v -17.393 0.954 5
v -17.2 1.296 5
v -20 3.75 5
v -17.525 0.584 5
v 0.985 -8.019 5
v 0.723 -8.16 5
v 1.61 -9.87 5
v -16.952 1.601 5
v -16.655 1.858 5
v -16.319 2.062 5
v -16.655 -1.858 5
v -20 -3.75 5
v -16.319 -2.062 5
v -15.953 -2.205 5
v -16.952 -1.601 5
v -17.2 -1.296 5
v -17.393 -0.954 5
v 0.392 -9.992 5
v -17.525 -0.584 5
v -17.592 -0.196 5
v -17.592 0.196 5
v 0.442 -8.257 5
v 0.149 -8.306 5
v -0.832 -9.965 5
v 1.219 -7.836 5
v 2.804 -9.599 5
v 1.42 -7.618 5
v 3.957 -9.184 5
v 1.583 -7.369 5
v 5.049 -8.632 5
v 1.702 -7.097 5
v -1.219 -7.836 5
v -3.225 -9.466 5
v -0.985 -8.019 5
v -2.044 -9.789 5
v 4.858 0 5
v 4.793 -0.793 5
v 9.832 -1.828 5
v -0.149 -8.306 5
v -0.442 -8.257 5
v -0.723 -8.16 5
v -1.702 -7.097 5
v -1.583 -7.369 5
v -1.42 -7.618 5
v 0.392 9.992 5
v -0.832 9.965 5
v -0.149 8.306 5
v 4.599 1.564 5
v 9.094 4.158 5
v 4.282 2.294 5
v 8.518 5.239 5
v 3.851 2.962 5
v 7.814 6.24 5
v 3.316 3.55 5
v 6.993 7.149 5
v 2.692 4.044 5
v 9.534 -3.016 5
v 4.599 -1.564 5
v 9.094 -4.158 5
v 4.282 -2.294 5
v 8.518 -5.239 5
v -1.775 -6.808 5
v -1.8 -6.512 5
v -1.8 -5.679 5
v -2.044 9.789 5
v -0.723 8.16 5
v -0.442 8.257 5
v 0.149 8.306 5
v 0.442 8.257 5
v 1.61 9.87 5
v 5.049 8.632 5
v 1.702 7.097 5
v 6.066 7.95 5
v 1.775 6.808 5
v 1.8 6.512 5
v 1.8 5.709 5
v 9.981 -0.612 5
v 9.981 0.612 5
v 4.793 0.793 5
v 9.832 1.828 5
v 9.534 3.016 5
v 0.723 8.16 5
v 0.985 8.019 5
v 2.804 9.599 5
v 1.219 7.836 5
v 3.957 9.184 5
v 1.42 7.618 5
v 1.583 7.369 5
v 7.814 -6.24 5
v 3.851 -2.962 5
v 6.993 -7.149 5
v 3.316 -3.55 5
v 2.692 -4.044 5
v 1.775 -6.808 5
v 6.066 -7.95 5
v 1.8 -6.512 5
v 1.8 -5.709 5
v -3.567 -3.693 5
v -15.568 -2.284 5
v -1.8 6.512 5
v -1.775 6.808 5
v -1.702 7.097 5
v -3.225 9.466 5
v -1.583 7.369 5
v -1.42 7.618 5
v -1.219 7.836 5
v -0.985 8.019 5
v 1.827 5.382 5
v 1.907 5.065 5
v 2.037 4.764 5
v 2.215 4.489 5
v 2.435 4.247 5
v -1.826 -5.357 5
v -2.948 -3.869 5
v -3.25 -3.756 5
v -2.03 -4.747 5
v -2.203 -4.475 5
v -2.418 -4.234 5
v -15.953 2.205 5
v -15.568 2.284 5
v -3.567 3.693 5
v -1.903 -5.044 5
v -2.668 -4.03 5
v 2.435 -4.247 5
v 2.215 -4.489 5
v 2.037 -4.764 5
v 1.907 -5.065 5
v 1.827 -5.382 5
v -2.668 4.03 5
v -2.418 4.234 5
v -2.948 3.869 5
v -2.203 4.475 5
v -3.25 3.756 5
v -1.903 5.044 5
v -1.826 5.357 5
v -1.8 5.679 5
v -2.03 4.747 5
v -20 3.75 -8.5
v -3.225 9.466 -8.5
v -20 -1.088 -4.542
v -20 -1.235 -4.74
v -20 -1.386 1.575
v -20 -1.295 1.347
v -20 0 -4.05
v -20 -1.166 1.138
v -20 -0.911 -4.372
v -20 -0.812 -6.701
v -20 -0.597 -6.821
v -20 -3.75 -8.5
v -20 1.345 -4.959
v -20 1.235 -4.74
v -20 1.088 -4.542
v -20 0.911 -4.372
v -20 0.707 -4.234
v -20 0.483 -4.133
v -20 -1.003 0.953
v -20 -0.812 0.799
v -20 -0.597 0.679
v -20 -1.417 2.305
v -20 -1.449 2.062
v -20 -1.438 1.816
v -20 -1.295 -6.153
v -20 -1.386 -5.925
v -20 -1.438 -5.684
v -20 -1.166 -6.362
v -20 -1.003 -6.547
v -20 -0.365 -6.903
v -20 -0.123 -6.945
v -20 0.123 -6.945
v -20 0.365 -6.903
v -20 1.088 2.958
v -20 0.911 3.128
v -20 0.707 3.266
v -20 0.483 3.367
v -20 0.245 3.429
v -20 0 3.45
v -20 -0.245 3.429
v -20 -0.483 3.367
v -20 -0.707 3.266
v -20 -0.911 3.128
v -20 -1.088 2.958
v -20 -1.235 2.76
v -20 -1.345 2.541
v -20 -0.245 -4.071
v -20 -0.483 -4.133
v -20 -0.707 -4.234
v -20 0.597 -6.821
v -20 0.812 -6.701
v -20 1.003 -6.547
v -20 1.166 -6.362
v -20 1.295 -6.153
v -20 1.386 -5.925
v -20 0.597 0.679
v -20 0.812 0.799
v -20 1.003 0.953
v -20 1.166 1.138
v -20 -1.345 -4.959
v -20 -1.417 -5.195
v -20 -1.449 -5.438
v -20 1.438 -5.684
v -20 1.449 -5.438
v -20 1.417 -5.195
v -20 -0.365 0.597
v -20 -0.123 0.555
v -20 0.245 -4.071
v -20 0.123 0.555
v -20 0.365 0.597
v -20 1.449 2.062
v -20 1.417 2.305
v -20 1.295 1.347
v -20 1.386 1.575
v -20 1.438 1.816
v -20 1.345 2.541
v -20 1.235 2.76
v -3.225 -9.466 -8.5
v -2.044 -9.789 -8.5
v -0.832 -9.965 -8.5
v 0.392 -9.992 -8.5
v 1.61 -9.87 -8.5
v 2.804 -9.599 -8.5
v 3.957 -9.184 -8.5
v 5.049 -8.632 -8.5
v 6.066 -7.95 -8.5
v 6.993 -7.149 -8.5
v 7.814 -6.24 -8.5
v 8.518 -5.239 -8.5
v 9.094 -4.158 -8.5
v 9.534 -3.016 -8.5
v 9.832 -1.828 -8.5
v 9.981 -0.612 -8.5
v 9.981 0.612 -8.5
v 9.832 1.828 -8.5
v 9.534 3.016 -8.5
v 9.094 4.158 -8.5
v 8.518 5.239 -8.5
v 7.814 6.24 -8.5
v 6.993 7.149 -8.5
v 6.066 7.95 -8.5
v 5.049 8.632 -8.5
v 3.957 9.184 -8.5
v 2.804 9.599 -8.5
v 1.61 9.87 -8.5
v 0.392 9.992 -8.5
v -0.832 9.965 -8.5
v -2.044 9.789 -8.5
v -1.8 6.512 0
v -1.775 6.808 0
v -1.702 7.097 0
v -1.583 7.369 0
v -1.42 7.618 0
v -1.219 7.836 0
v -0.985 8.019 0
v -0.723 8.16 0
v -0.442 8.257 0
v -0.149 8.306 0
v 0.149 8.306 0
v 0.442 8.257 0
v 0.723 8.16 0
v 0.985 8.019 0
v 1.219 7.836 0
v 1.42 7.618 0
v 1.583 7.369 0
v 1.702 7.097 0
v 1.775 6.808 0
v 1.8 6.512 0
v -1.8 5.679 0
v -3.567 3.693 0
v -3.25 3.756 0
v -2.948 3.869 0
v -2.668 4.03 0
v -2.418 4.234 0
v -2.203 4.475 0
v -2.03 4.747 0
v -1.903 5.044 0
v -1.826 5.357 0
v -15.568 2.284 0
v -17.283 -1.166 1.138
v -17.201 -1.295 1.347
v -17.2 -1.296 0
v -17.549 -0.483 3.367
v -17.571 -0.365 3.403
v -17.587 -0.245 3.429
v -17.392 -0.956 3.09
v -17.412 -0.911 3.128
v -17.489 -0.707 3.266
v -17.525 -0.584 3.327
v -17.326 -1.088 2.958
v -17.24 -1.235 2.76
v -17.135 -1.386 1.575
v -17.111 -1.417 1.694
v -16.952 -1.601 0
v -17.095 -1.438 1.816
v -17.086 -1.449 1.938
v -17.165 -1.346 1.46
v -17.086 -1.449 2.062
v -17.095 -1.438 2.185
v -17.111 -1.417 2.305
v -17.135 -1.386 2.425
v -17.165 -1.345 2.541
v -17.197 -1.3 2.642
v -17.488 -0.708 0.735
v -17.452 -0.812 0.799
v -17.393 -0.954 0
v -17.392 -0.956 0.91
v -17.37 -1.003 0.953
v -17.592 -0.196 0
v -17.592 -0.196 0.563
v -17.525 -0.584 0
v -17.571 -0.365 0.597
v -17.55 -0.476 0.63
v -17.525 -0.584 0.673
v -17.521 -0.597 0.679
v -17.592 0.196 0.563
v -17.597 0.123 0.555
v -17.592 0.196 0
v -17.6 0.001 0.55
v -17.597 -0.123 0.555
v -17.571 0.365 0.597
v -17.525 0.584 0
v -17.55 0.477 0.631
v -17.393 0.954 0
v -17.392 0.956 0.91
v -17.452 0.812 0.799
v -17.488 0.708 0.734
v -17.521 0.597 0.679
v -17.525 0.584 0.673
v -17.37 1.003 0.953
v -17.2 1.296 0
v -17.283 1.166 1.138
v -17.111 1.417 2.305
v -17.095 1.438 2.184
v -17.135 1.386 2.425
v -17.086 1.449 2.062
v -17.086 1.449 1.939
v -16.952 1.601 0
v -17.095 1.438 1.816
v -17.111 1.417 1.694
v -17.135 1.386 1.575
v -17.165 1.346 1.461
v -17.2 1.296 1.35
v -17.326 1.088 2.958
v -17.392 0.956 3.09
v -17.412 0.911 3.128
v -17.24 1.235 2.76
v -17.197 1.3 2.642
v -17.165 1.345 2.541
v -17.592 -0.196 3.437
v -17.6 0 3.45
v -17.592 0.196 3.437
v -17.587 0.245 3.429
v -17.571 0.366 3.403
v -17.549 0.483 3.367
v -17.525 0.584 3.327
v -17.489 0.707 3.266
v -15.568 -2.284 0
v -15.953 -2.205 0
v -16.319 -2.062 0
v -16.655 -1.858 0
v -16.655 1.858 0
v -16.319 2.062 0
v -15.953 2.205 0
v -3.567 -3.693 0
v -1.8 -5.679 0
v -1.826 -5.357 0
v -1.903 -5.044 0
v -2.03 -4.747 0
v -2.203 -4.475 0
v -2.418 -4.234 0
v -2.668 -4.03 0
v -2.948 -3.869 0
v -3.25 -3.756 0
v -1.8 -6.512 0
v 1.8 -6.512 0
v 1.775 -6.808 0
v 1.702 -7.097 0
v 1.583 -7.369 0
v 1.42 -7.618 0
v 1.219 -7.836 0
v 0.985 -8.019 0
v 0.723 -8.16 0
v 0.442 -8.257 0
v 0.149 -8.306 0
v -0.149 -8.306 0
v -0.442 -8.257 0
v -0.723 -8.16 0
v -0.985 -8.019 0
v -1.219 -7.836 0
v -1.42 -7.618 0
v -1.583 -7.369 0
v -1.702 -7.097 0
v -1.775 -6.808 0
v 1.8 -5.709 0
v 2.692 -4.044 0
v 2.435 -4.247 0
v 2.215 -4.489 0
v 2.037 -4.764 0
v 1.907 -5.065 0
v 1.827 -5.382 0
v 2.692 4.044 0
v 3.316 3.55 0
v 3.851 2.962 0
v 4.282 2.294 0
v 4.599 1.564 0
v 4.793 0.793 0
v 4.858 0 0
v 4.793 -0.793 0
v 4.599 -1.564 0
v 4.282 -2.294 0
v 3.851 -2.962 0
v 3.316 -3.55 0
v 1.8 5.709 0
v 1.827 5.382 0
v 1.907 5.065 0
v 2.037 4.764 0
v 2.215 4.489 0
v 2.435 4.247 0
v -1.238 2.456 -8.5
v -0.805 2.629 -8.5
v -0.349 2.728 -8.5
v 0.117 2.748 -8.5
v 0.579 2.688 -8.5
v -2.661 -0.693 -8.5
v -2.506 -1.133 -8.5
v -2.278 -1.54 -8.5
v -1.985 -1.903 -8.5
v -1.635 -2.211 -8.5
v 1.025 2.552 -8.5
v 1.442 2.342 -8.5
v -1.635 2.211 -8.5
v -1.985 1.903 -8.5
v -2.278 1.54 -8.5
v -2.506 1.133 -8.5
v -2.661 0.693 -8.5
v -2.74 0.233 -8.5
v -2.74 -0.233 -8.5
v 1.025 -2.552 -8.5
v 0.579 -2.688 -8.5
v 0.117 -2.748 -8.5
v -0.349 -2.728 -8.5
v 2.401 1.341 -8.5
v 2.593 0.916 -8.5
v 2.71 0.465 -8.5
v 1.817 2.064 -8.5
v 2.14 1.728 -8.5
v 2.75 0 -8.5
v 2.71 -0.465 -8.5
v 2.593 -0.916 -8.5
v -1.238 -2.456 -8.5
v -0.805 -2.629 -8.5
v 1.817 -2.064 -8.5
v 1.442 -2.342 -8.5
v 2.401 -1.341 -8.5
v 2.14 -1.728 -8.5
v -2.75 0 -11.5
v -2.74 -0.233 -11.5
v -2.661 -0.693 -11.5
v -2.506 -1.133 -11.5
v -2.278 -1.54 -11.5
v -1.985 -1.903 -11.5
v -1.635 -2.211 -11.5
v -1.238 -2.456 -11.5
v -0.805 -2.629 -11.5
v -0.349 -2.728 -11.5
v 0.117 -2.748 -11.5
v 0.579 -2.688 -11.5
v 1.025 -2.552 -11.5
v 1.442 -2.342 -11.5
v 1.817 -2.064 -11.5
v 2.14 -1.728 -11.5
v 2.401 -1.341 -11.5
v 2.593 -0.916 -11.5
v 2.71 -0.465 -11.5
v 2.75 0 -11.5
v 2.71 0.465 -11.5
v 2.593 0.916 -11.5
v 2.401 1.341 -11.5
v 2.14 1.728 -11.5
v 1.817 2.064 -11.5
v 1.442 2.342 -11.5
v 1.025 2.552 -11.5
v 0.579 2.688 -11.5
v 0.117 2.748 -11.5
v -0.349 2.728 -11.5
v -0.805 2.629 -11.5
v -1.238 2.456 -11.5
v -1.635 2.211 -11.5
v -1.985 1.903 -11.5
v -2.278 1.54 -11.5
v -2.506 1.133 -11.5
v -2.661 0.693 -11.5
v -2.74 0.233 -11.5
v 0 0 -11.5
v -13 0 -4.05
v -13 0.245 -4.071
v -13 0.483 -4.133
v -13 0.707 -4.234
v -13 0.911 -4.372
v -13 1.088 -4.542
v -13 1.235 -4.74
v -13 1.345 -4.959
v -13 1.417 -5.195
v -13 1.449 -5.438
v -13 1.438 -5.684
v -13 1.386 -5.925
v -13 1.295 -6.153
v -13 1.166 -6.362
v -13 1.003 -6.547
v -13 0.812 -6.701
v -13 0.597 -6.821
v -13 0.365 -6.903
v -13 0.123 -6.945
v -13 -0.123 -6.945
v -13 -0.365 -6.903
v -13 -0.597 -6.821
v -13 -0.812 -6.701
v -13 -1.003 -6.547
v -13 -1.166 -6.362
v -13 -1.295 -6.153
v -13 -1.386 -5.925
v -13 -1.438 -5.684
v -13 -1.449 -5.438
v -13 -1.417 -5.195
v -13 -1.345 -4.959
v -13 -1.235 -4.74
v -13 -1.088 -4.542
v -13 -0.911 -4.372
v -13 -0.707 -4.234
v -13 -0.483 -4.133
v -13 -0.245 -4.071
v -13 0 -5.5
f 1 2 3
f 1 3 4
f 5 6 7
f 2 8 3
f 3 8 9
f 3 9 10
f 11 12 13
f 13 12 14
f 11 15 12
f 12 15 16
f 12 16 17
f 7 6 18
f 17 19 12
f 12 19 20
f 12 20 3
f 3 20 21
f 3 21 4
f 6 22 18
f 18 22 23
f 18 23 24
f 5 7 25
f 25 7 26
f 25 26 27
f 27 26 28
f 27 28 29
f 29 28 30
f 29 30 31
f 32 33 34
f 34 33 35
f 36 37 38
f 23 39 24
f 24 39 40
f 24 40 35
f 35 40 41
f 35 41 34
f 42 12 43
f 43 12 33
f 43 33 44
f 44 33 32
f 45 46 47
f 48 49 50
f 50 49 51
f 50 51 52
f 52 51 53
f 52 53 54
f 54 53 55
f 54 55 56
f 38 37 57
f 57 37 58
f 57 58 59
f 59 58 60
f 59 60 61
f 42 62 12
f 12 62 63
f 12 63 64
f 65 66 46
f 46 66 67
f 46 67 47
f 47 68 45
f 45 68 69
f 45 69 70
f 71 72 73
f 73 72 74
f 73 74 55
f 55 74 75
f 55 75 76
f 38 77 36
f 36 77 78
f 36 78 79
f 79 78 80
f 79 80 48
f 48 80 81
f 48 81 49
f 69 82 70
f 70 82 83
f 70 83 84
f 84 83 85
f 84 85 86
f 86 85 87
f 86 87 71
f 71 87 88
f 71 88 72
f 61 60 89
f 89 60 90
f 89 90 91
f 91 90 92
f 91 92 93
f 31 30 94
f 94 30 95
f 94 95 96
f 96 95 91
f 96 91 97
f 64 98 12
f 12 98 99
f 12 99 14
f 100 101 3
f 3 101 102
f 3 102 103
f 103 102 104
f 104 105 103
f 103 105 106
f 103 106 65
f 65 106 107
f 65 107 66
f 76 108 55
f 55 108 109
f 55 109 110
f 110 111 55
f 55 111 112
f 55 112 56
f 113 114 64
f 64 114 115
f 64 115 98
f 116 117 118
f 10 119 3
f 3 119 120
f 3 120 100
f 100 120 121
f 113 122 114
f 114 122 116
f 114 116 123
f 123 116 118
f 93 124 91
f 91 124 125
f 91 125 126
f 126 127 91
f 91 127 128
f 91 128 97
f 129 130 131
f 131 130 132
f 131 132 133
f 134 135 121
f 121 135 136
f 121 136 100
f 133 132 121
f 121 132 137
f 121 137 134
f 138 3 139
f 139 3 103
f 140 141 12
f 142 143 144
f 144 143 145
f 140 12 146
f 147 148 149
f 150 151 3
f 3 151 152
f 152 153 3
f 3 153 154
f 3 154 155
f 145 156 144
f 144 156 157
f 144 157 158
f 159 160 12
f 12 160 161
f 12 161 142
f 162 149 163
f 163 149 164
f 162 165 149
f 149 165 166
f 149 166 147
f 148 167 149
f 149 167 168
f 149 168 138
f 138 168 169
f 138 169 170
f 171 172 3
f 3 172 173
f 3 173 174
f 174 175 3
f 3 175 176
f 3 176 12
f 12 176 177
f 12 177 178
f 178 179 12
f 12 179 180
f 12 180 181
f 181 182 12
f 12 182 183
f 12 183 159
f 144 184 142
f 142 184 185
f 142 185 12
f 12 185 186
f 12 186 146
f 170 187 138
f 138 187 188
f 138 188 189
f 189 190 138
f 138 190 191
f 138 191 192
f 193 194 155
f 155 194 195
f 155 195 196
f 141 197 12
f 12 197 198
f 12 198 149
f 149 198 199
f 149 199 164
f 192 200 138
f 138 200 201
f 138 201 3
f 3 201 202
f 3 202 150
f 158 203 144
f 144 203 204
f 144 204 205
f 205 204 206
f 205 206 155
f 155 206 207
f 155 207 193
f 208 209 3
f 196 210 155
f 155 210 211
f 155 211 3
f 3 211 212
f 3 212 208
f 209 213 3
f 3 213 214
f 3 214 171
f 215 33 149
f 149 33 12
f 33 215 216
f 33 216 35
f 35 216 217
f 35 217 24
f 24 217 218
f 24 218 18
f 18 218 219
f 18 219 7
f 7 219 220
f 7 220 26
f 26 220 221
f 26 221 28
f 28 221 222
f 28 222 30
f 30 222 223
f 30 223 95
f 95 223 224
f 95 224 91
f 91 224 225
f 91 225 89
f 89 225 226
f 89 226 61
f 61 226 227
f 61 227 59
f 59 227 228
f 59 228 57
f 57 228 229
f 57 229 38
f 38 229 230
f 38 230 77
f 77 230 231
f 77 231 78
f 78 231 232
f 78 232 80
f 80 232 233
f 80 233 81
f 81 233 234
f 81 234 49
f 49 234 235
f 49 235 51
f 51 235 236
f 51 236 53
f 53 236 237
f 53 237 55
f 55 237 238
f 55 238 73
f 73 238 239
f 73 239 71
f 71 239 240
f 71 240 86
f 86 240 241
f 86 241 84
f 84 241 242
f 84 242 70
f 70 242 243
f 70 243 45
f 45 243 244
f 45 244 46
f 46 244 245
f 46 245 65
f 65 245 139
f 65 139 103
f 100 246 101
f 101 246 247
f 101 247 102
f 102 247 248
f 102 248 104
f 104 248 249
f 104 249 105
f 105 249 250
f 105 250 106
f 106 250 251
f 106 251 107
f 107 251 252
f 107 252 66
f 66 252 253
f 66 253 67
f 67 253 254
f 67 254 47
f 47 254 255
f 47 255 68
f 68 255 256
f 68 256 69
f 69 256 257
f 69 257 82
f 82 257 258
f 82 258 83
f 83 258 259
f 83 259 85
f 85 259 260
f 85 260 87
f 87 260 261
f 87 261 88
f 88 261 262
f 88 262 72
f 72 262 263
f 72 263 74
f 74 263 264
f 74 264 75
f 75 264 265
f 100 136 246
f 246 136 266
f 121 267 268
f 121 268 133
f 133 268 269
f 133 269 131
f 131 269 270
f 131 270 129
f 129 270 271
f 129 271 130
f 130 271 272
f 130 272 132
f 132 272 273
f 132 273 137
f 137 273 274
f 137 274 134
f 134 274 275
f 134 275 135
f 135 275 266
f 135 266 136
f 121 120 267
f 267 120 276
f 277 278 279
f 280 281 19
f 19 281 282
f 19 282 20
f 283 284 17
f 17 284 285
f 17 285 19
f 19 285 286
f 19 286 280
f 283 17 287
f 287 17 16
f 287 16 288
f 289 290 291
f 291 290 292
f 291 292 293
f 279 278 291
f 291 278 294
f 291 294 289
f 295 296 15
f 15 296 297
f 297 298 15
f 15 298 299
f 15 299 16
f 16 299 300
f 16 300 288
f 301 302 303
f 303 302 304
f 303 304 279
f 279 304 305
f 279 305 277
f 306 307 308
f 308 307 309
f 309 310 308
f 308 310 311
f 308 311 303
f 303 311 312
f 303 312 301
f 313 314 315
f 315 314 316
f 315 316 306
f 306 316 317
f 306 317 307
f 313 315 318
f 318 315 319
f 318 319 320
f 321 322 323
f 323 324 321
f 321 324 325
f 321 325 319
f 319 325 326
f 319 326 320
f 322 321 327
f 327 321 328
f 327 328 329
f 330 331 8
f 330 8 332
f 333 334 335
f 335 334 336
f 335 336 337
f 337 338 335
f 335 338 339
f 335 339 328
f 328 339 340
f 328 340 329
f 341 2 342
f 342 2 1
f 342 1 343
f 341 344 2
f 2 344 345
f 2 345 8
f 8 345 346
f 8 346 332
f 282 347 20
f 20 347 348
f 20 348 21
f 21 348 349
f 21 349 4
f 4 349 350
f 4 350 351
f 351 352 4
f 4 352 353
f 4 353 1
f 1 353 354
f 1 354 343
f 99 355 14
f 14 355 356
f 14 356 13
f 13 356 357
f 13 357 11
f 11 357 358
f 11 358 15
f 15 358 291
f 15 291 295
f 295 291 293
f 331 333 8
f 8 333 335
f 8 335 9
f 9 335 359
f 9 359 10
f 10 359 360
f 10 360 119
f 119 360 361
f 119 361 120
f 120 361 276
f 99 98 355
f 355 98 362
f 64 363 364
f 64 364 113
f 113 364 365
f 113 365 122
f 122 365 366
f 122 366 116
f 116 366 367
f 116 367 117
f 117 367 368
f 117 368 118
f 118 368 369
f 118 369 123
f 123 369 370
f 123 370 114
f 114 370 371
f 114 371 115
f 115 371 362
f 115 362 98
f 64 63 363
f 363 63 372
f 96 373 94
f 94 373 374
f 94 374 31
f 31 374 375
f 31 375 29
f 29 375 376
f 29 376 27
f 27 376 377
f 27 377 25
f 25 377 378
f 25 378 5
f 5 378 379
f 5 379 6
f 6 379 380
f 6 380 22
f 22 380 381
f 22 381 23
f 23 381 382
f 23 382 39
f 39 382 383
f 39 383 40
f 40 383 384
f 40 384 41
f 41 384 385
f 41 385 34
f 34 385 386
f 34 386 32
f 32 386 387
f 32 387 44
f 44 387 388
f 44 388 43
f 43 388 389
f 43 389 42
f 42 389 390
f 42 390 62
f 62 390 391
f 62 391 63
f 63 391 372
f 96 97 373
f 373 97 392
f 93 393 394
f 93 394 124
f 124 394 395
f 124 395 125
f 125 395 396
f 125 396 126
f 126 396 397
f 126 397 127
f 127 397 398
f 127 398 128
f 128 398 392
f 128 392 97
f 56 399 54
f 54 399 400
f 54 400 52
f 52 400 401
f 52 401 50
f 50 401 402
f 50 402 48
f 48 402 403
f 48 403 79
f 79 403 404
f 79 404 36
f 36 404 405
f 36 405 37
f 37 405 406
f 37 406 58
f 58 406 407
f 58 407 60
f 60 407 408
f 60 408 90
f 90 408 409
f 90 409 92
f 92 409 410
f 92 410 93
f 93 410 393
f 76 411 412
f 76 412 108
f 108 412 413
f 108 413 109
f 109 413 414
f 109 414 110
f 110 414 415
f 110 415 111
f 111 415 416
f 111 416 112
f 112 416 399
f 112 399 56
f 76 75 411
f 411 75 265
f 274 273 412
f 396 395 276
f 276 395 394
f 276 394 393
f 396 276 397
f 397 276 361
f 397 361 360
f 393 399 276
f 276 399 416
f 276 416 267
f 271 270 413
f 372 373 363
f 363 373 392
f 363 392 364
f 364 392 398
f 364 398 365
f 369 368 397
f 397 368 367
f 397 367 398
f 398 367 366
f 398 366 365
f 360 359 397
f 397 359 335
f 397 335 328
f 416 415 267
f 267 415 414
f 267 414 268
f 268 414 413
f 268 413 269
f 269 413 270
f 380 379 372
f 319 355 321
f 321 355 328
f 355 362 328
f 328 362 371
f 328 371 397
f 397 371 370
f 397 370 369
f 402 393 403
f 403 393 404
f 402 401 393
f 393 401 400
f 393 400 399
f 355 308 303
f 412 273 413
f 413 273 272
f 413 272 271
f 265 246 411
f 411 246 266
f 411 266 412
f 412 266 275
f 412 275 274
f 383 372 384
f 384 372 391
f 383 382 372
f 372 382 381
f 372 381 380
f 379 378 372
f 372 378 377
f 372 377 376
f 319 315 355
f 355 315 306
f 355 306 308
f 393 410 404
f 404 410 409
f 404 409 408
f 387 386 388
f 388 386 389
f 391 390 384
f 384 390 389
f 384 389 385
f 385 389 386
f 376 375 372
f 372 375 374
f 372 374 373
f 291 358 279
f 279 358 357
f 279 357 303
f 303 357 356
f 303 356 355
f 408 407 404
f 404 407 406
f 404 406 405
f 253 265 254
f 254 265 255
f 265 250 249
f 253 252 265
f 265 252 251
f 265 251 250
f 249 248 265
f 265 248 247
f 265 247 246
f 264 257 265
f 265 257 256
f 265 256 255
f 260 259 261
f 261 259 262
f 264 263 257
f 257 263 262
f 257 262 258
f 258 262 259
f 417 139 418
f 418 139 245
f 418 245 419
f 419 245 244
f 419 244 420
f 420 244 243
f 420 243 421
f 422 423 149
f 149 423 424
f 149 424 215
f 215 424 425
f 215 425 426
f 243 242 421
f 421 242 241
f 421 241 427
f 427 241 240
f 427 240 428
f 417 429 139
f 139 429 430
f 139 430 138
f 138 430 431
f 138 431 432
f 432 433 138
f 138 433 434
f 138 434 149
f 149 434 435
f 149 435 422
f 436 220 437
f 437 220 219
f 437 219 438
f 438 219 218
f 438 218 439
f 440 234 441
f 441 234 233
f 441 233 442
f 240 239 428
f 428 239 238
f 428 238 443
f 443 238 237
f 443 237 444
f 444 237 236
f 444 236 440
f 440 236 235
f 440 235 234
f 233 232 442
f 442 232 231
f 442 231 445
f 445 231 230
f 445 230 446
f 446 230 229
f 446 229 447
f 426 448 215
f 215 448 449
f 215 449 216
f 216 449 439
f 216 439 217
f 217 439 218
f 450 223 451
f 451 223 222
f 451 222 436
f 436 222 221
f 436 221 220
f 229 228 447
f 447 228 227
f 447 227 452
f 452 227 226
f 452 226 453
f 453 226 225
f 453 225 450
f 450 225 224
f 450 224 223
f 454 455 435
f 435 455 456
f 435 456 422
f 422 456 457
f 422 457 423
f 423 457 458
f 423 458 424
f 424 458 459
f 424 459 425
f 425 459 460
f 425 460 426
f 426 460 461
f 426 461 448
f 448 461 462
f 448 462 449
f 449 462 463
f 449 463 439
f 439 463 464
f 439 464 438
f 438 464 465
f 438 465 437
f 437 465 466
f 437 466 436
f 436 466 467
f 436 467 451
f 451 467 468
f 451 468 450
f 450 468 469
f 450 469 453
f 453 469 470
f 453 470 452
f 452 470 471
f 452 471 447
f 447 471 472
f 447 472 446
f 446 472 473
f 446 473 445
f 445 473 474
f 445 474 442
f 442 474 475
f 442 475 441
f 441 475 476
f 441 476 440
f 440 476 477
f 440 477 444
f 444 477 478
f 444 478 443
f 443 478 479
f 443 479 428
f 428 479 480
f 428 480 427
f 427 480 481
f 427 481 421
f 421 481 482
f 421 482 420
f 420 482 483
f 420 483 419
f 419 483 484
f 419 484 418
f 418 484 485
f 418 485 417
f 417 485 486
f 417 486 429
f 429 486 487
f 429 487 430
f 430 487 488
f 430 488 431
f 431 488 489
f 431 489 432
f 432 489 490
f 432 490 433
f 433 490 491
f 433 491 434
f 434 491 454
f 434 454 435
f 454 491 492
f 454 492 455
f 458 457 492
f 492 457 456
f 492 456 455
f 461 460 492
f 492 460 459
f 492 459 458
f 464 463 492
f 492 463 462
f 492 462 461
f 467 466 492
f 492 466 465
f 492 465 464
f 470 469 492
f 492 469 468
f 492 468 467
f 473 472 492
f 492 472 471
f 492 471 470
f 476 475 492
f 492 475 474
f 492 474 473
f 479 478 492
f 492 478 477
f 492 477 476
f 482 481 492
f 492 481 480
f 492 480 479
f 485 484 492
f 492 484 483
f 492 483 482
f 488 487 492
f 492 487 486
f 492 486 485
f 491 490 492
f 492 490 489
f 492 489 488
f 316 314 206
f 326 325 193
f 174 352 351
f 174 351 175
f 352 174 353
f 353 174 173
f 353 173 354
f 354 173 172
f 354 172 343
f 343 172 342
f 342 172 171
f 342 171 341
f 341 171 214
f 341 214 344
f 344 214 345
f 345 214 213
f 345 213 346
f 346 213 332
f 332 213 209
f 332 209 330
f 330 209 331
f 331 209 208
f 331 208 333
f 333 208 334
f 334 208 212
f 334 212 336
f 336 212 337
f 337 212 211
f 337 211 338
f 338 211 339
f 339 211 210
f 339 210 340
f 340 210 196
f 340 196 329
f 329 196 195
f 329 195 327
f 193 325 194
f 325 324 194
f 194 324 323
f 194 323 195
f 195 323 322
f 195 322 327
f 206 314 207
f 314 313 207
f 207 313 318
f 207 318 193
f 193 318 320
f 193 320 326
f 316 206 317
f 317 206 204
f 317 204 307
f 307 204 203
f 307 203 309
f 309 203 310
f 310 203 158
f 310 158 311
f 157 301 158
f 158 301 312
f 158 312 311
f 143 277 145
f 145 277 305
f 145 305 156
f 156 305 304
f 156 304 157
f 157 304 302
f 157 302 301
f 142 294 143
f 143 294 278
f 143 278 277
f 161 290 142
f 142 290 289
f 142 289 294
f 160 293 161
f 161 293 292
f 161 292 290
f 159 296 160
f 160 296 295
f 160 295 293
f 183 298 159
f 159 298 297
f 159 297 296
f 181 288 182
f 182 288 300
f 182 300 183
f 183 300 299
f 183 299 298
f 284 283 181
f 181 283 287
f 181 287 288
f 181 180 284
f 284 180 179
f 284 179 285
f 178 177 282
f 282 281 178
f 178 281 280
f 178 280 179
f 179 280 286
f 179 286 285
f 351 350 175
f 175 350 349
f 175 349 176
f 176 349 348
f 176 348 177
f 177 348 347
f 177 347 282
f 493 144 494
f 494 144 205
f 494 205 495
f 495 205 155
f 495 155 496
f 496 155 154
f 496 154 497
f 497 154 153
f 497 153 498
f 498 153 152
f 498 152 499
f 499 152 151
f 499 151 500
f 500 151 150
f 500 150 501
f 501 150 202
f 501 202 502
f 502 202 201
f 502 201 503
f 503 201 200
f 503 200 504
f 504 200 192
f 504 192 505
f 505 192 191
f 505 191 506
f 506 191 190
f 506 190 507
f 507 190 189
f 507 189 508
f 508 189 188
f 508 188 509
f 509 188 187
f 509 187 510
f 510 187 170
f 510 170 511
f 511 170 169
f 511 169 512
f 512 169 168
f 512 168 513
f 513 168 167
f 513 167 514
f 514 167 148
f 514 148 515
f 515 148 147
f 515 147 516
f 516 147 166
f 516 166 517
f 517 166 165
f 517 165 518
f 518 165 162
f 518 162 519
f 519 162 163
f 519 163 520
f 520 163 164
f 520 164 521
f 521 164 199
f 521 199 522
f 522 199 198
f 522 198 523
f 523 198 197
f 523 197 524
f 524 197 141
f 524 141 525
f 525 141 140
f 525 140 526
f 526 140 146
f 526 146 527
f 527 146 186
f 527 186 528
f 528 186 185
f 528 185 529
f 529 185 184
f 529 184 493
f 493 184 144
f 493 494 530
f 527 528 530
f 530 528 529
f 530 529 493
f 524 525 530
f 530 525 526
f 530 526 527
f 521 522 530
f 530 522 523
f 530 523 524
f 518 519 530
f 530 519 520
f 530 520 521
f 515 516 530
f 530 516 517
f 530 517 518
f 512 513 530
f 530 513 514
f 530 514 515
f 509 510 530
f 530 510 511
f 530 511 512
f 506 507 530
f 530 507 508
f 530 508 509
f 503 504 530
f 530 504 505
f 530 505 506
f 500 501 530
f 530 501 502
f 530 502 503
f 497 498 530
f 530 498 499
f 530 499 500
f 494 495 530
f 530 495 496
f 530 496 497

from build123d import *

# Parameters (mm, degrees)
EXTRUDE_1_DEPTH     = 5
EXTRUDE_START       = -13.5
EXTRUDE_2_DEPTH     = 8.5
SKETCH_3_R          = 2.75
EXTRUDE_3_DEPTH     = 3
SKETCH_4_R          = 1.45
CUT_EXTRUDE_1_DEPTH = 7


with BuildPart() as part:
    # Эскиз1 → Бобышка-Вытянуть1 (new body)
    with BuildSketch(Plane.XY):
        with BuildLine():
            Line((-20, 3.75), (-20, -3.75))
            Line((-20, -3.75), (-3.225194693, -9.465628304))
            ThreePointArc((-3.225194693, -9.465628304), (10, 0), (-3.225194693, 9.465628304))
            Line((-3.225194693, 9.465628304), (-20, 3.75))
        make_face()
        with BuildLine():
            Line((1.8, 5.708755266), (1.8, 6.512045083))
            ThreePointArc((1.8, 6.512045083), (3.1e-08, 8.312045083), (-1.8, 6.512045145))
            Line((-1.8, 6.512045145), (-1.8, 5.679024933))
            ThreePointArc((-1.8, 5.679024933), (-2.30564415, 4.349776802), (-3.566900594, 3.692655212))
            Line((-3.566900594, 3.692655212), (-15.568064288, 2.284325182))
            ThreePointArc((-15.568064288, 2.284325182), (-17.6, 9e-09), (-15.568064305, -2.28432518))
            Line((-15.568064305, -2.28432518), (-3.566900604, -3.692655149))
            ThreePointArc((-3.566900604, -3.692655149), (-2.305644154, -4.349776736), (-1.8, -5.679024871))
            Line((-1.8, -5.679024871), (-1.8, -6.512045083))
            ThreePointArc((-1.8, -6.512045083), (0, -8.312045083), (1.8, -6.512045083))
            Line((1.8, -6.512045083), (1.8, -5.708755266))
            ThreePointArc((1.8, -5.708755266), (2.036985071, -4.764415094), (2.691778361, -4.043869445))
            ThreePointArc((2.691778361, -4.043869445), (4.857833965, 0), (2.691778361, 4.043869445))
            ThreePointArc((2.691778361, 4.043869445), (2.036985071, 4.764415094), (1.8, 5.708755266))
        make_face(mode=Mode.SUBTRACT)
    extrude(amount=EXTRUDE_1_DEPTH)

    # Эскиз2 → Бобышка-Вытянуть2 (add)
    with BuildSketch(Plane.XY.offset(5).offset(EXTRUDE_START)):
        with BuildLine():
            Line((-3.225194693, 9.465628304), (-20, 3.75))
            Line((-20, 3.75), (-20, -3.75))
            Line((-20, -3.75), (-3.225194693, -9.465628304))
            ThreePointArc((-3.225194693, -9.465628304), (10, 0), (-3.225194693, 9.465628304))
        make_face()
    extrude(amount=EXTRUDE_2_DEPTH)

    # Эскиз3 → Бобышка-Вытянуть3 (add)
    with BuildSketch(Plane(origin=(0, 0, -8.5), x_dir=(-1, 0, 0), z_dir=(0, 0, -1))):
        with Locations(Location((0, 0, 0), (0, 0, 180))):
            Circle(SKETCH_3_R)
    extrude(amount=EXTRUDE_3_DEPTH)

    # Эскиз4 → Вырез-Вытянуть1 (cut)
    with BuildSketch(Plane.ZY.offset(20)):
        with Locations((-5.5, 0)):
            Circle(SKETCH_4_R)
        with Locations((2, 0)):
            Circle(SKETCH_4_R)
    extrude(amount=-CUT_EXTRUDE_1_DEPTH, mode=Mode.SUBTRACT)


solid = part.part
